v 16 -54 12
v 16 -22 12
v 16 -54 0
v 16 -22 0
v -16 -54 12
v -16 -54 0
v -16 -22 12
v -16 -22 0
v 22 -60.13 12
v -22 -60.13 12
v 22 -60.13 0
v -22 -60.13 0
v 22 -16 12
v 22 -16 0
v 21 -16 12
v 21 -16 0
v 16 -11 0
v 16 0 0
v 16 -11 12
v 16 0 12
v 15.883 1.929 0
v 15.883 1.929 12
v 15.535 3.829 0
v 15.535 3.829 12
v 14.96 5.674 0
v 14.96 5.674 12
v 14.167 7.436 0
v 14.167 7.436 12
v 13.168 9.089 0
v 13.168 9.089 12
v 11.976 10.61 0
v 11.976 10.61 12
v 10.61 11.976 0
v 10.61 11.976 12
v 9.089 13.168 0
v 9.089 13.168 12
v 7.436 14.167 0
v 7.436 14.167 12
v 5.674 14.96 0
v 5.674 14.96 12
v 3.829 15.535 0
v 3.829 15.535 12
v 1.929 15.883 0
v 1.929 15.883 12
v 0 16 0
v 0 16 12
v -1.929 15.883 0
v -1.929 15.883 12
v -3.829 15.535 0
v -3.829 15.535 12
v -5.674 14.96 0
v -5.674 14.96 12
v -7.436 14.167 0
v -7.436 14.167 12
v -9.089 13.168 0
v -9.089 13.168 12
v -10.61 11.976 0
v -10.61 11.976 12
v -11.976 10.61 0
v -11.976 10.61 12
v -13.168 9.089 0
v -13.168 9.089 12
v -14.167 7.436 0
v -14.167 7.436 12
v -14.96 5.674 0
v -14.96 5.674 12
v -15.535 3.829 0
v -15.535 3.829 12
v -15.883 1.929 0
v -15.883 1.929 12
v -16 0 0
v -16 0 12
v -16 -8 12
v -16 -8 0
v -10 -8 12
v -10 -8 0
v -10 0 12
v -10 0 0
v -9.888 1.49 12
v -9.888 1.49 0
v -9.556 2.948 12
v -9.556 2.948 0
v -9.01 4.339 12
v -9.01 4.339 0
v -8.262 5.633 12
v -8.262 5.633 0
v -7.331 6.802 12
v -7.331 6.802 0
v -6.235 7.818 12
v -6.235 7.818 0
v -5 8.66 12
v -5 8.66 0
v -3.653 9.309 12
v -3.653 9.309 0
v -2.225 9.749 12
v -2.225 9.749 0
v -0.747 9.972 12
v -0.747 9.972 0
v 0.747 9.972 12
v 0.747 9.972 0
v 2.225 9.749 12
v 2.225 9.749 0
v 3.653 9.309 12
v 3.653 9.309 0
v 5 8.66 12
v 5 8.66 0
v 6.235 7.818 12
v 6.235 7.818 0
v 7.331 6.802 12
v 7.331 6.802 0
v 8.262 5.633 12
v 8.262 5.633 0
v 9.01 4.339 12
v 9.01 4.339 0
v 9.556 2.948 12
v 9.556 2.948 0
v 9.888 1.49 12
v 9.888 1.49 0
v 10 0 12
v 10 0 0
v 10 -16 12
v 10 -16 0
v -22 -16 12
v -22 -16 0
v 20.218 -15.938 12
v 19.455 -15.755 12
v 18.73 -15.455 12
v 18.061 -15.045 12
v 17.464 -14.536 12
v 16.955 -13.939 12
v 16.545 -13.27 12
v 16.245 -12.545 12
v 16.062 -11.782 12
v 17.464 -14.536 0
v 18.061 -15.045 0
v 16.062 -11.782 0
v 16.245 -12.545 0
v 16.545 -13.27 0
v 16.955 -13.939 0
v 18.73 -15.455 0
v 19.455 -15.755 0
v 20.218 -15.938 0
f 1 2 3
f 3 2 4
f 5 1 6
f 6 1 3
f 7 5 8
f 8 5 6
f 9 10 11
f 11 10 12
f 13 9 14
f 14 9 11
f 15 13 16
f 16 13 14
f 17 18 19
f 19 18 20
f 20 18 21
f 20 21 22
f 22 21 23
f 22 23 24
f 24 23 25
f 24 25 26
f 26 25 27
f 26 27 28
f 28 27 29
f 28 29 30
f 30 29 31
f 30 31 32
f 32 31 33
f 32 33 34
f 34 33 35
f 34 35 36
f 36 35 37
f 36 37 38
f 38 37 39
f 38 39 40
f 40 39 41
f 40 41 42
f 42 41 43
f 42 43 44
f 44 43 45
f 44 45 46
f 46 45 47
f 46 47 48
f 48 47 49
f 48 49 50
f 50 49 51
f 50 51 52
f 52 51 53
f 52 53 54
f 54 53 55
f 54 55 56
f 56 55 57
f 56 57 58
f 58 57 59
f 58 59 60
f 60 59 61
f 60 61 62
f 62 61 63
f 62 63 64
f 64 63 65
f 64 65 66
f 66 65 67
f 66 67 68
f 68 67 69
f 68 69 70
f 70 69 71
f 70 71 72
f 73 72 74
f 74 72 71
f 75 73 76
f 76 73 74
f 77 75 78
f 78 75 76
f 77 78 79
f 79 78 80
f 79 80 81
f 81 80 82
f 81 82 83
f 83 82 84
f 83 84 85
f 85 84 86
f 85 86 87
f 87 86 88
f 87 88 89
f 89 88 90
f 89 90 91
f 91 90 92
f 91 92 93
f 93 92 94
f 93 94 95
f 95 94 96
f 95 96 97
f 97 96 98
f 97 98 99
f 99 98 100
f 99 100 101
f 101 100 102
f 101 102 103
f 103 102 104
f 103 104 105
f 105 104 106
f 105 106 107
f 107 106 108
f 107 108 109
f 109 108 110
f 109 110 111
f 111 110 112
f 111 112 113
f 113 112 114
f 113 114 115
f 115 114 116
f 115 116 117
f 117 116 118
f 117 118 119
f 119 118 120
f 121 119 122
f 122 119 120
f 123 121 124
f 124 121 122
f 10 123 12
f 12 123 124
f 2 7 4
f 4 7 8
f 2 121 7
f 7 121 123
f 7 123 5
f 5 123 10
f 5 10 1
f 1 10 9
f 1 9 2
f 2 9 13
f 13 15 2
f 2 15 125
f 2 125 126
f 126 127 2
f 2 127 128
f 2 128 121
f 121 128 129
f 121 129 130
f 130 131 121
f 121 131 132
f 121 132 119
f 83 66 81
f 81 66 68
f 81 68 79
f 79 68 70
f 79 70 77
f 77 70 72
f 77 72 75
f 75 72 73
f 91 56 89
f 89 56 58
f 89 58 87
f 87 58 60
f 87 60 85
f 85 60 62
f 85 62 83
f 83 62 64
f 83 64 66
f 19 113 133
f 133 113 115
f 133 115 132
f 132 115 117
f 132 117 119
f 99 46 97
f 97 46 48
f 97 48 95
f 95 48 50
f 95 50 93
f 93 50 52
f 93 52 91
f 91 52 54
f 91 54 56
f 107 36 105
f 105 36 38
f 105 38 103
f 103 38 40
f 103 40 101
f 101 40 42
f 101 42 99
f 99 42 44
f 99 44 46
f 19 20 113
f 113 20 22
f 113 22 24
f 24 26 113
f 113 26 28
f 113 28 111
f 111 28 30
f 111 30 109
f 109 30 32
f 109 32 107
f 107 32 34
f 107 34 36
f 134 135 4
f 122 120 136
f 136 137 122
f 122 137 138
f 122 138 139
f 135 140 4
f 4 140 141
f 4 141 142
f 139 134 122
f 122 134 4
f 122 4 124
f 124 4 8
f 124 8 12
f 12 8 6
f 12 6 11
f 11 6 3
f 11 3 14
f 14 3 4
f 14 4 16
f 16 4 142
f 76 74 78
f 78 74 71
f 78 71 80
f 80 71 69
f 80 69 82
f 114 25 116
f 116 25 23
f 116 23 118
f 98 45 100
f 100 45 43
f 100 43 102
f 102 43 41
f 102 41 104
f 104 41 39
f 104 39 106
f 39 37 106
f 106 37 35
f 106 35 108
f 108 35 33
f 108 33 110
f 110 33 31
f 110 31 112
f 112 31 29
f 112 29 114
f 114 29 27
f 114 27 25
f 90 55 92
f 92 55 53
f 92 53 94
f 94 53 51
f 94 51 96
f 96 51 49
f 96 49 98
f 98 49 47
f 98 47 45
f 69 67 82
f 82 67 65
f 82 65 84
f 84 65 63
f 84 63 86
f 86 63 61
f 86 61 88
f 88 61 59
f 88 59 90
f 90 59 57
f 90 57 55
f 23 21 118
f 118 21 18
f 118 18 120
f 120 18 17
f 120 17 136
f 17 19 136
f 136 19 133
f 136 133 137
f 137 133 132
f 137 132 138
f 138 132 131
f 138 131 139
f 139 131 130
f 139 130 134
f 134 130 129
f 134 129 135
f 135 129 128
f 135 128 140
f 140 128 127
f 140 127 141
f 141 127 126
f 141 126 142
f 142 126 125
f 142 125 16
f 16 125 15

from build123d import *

# Parameters (mm, degrees)
EXTRUDE_1_DEPTH = 12
FILLET_1_R      = 5


with BuildPart() as part:
    # 草图1 → 凸台-拉伸1 (new body)
    with BuildSketch(Plane.XY):
        with BuildLine():
            Line((-16, -8), (-10, -8))
            Line((-10, -8), (-10, 0))
            ThreePointArc((-10, 0), (0, 10), (10, 0))
            Line((10, 0), (10, -16))
            Line((10, -16), (16, -16))
            Line((16, -16), (16, 0))
            ThreePointArc((16, 0), (0, 16), (-16, 0))
            Line((-16, 0), (-16, -8))
        make_face()
        Polygon((16, -16), (10, -16), (-10, -16), (-16, -16), (-22, -16), (-22, -54), (-16, -54), (-16, -22), (-10, -22), (10, -22), (16, -22), (16, -54), (22, -54), (22, -16), align=None)
        Polygon((16, -54), (22, -54), (22, -60.12975141), (-22, -60.12975141), (-22, -54), (-16, -54), align=None)
    extrude(amount=EXTRUDE_1_DEPTH)

    # 圆角1
    fillet_1_edges = [part.edges().sort_by_distance(p)[0] for p in [
        (16, -16, 6),
    ]]
    fillet(fillet_1_edges, radius=FILLET_1_R)


solid = part.part
